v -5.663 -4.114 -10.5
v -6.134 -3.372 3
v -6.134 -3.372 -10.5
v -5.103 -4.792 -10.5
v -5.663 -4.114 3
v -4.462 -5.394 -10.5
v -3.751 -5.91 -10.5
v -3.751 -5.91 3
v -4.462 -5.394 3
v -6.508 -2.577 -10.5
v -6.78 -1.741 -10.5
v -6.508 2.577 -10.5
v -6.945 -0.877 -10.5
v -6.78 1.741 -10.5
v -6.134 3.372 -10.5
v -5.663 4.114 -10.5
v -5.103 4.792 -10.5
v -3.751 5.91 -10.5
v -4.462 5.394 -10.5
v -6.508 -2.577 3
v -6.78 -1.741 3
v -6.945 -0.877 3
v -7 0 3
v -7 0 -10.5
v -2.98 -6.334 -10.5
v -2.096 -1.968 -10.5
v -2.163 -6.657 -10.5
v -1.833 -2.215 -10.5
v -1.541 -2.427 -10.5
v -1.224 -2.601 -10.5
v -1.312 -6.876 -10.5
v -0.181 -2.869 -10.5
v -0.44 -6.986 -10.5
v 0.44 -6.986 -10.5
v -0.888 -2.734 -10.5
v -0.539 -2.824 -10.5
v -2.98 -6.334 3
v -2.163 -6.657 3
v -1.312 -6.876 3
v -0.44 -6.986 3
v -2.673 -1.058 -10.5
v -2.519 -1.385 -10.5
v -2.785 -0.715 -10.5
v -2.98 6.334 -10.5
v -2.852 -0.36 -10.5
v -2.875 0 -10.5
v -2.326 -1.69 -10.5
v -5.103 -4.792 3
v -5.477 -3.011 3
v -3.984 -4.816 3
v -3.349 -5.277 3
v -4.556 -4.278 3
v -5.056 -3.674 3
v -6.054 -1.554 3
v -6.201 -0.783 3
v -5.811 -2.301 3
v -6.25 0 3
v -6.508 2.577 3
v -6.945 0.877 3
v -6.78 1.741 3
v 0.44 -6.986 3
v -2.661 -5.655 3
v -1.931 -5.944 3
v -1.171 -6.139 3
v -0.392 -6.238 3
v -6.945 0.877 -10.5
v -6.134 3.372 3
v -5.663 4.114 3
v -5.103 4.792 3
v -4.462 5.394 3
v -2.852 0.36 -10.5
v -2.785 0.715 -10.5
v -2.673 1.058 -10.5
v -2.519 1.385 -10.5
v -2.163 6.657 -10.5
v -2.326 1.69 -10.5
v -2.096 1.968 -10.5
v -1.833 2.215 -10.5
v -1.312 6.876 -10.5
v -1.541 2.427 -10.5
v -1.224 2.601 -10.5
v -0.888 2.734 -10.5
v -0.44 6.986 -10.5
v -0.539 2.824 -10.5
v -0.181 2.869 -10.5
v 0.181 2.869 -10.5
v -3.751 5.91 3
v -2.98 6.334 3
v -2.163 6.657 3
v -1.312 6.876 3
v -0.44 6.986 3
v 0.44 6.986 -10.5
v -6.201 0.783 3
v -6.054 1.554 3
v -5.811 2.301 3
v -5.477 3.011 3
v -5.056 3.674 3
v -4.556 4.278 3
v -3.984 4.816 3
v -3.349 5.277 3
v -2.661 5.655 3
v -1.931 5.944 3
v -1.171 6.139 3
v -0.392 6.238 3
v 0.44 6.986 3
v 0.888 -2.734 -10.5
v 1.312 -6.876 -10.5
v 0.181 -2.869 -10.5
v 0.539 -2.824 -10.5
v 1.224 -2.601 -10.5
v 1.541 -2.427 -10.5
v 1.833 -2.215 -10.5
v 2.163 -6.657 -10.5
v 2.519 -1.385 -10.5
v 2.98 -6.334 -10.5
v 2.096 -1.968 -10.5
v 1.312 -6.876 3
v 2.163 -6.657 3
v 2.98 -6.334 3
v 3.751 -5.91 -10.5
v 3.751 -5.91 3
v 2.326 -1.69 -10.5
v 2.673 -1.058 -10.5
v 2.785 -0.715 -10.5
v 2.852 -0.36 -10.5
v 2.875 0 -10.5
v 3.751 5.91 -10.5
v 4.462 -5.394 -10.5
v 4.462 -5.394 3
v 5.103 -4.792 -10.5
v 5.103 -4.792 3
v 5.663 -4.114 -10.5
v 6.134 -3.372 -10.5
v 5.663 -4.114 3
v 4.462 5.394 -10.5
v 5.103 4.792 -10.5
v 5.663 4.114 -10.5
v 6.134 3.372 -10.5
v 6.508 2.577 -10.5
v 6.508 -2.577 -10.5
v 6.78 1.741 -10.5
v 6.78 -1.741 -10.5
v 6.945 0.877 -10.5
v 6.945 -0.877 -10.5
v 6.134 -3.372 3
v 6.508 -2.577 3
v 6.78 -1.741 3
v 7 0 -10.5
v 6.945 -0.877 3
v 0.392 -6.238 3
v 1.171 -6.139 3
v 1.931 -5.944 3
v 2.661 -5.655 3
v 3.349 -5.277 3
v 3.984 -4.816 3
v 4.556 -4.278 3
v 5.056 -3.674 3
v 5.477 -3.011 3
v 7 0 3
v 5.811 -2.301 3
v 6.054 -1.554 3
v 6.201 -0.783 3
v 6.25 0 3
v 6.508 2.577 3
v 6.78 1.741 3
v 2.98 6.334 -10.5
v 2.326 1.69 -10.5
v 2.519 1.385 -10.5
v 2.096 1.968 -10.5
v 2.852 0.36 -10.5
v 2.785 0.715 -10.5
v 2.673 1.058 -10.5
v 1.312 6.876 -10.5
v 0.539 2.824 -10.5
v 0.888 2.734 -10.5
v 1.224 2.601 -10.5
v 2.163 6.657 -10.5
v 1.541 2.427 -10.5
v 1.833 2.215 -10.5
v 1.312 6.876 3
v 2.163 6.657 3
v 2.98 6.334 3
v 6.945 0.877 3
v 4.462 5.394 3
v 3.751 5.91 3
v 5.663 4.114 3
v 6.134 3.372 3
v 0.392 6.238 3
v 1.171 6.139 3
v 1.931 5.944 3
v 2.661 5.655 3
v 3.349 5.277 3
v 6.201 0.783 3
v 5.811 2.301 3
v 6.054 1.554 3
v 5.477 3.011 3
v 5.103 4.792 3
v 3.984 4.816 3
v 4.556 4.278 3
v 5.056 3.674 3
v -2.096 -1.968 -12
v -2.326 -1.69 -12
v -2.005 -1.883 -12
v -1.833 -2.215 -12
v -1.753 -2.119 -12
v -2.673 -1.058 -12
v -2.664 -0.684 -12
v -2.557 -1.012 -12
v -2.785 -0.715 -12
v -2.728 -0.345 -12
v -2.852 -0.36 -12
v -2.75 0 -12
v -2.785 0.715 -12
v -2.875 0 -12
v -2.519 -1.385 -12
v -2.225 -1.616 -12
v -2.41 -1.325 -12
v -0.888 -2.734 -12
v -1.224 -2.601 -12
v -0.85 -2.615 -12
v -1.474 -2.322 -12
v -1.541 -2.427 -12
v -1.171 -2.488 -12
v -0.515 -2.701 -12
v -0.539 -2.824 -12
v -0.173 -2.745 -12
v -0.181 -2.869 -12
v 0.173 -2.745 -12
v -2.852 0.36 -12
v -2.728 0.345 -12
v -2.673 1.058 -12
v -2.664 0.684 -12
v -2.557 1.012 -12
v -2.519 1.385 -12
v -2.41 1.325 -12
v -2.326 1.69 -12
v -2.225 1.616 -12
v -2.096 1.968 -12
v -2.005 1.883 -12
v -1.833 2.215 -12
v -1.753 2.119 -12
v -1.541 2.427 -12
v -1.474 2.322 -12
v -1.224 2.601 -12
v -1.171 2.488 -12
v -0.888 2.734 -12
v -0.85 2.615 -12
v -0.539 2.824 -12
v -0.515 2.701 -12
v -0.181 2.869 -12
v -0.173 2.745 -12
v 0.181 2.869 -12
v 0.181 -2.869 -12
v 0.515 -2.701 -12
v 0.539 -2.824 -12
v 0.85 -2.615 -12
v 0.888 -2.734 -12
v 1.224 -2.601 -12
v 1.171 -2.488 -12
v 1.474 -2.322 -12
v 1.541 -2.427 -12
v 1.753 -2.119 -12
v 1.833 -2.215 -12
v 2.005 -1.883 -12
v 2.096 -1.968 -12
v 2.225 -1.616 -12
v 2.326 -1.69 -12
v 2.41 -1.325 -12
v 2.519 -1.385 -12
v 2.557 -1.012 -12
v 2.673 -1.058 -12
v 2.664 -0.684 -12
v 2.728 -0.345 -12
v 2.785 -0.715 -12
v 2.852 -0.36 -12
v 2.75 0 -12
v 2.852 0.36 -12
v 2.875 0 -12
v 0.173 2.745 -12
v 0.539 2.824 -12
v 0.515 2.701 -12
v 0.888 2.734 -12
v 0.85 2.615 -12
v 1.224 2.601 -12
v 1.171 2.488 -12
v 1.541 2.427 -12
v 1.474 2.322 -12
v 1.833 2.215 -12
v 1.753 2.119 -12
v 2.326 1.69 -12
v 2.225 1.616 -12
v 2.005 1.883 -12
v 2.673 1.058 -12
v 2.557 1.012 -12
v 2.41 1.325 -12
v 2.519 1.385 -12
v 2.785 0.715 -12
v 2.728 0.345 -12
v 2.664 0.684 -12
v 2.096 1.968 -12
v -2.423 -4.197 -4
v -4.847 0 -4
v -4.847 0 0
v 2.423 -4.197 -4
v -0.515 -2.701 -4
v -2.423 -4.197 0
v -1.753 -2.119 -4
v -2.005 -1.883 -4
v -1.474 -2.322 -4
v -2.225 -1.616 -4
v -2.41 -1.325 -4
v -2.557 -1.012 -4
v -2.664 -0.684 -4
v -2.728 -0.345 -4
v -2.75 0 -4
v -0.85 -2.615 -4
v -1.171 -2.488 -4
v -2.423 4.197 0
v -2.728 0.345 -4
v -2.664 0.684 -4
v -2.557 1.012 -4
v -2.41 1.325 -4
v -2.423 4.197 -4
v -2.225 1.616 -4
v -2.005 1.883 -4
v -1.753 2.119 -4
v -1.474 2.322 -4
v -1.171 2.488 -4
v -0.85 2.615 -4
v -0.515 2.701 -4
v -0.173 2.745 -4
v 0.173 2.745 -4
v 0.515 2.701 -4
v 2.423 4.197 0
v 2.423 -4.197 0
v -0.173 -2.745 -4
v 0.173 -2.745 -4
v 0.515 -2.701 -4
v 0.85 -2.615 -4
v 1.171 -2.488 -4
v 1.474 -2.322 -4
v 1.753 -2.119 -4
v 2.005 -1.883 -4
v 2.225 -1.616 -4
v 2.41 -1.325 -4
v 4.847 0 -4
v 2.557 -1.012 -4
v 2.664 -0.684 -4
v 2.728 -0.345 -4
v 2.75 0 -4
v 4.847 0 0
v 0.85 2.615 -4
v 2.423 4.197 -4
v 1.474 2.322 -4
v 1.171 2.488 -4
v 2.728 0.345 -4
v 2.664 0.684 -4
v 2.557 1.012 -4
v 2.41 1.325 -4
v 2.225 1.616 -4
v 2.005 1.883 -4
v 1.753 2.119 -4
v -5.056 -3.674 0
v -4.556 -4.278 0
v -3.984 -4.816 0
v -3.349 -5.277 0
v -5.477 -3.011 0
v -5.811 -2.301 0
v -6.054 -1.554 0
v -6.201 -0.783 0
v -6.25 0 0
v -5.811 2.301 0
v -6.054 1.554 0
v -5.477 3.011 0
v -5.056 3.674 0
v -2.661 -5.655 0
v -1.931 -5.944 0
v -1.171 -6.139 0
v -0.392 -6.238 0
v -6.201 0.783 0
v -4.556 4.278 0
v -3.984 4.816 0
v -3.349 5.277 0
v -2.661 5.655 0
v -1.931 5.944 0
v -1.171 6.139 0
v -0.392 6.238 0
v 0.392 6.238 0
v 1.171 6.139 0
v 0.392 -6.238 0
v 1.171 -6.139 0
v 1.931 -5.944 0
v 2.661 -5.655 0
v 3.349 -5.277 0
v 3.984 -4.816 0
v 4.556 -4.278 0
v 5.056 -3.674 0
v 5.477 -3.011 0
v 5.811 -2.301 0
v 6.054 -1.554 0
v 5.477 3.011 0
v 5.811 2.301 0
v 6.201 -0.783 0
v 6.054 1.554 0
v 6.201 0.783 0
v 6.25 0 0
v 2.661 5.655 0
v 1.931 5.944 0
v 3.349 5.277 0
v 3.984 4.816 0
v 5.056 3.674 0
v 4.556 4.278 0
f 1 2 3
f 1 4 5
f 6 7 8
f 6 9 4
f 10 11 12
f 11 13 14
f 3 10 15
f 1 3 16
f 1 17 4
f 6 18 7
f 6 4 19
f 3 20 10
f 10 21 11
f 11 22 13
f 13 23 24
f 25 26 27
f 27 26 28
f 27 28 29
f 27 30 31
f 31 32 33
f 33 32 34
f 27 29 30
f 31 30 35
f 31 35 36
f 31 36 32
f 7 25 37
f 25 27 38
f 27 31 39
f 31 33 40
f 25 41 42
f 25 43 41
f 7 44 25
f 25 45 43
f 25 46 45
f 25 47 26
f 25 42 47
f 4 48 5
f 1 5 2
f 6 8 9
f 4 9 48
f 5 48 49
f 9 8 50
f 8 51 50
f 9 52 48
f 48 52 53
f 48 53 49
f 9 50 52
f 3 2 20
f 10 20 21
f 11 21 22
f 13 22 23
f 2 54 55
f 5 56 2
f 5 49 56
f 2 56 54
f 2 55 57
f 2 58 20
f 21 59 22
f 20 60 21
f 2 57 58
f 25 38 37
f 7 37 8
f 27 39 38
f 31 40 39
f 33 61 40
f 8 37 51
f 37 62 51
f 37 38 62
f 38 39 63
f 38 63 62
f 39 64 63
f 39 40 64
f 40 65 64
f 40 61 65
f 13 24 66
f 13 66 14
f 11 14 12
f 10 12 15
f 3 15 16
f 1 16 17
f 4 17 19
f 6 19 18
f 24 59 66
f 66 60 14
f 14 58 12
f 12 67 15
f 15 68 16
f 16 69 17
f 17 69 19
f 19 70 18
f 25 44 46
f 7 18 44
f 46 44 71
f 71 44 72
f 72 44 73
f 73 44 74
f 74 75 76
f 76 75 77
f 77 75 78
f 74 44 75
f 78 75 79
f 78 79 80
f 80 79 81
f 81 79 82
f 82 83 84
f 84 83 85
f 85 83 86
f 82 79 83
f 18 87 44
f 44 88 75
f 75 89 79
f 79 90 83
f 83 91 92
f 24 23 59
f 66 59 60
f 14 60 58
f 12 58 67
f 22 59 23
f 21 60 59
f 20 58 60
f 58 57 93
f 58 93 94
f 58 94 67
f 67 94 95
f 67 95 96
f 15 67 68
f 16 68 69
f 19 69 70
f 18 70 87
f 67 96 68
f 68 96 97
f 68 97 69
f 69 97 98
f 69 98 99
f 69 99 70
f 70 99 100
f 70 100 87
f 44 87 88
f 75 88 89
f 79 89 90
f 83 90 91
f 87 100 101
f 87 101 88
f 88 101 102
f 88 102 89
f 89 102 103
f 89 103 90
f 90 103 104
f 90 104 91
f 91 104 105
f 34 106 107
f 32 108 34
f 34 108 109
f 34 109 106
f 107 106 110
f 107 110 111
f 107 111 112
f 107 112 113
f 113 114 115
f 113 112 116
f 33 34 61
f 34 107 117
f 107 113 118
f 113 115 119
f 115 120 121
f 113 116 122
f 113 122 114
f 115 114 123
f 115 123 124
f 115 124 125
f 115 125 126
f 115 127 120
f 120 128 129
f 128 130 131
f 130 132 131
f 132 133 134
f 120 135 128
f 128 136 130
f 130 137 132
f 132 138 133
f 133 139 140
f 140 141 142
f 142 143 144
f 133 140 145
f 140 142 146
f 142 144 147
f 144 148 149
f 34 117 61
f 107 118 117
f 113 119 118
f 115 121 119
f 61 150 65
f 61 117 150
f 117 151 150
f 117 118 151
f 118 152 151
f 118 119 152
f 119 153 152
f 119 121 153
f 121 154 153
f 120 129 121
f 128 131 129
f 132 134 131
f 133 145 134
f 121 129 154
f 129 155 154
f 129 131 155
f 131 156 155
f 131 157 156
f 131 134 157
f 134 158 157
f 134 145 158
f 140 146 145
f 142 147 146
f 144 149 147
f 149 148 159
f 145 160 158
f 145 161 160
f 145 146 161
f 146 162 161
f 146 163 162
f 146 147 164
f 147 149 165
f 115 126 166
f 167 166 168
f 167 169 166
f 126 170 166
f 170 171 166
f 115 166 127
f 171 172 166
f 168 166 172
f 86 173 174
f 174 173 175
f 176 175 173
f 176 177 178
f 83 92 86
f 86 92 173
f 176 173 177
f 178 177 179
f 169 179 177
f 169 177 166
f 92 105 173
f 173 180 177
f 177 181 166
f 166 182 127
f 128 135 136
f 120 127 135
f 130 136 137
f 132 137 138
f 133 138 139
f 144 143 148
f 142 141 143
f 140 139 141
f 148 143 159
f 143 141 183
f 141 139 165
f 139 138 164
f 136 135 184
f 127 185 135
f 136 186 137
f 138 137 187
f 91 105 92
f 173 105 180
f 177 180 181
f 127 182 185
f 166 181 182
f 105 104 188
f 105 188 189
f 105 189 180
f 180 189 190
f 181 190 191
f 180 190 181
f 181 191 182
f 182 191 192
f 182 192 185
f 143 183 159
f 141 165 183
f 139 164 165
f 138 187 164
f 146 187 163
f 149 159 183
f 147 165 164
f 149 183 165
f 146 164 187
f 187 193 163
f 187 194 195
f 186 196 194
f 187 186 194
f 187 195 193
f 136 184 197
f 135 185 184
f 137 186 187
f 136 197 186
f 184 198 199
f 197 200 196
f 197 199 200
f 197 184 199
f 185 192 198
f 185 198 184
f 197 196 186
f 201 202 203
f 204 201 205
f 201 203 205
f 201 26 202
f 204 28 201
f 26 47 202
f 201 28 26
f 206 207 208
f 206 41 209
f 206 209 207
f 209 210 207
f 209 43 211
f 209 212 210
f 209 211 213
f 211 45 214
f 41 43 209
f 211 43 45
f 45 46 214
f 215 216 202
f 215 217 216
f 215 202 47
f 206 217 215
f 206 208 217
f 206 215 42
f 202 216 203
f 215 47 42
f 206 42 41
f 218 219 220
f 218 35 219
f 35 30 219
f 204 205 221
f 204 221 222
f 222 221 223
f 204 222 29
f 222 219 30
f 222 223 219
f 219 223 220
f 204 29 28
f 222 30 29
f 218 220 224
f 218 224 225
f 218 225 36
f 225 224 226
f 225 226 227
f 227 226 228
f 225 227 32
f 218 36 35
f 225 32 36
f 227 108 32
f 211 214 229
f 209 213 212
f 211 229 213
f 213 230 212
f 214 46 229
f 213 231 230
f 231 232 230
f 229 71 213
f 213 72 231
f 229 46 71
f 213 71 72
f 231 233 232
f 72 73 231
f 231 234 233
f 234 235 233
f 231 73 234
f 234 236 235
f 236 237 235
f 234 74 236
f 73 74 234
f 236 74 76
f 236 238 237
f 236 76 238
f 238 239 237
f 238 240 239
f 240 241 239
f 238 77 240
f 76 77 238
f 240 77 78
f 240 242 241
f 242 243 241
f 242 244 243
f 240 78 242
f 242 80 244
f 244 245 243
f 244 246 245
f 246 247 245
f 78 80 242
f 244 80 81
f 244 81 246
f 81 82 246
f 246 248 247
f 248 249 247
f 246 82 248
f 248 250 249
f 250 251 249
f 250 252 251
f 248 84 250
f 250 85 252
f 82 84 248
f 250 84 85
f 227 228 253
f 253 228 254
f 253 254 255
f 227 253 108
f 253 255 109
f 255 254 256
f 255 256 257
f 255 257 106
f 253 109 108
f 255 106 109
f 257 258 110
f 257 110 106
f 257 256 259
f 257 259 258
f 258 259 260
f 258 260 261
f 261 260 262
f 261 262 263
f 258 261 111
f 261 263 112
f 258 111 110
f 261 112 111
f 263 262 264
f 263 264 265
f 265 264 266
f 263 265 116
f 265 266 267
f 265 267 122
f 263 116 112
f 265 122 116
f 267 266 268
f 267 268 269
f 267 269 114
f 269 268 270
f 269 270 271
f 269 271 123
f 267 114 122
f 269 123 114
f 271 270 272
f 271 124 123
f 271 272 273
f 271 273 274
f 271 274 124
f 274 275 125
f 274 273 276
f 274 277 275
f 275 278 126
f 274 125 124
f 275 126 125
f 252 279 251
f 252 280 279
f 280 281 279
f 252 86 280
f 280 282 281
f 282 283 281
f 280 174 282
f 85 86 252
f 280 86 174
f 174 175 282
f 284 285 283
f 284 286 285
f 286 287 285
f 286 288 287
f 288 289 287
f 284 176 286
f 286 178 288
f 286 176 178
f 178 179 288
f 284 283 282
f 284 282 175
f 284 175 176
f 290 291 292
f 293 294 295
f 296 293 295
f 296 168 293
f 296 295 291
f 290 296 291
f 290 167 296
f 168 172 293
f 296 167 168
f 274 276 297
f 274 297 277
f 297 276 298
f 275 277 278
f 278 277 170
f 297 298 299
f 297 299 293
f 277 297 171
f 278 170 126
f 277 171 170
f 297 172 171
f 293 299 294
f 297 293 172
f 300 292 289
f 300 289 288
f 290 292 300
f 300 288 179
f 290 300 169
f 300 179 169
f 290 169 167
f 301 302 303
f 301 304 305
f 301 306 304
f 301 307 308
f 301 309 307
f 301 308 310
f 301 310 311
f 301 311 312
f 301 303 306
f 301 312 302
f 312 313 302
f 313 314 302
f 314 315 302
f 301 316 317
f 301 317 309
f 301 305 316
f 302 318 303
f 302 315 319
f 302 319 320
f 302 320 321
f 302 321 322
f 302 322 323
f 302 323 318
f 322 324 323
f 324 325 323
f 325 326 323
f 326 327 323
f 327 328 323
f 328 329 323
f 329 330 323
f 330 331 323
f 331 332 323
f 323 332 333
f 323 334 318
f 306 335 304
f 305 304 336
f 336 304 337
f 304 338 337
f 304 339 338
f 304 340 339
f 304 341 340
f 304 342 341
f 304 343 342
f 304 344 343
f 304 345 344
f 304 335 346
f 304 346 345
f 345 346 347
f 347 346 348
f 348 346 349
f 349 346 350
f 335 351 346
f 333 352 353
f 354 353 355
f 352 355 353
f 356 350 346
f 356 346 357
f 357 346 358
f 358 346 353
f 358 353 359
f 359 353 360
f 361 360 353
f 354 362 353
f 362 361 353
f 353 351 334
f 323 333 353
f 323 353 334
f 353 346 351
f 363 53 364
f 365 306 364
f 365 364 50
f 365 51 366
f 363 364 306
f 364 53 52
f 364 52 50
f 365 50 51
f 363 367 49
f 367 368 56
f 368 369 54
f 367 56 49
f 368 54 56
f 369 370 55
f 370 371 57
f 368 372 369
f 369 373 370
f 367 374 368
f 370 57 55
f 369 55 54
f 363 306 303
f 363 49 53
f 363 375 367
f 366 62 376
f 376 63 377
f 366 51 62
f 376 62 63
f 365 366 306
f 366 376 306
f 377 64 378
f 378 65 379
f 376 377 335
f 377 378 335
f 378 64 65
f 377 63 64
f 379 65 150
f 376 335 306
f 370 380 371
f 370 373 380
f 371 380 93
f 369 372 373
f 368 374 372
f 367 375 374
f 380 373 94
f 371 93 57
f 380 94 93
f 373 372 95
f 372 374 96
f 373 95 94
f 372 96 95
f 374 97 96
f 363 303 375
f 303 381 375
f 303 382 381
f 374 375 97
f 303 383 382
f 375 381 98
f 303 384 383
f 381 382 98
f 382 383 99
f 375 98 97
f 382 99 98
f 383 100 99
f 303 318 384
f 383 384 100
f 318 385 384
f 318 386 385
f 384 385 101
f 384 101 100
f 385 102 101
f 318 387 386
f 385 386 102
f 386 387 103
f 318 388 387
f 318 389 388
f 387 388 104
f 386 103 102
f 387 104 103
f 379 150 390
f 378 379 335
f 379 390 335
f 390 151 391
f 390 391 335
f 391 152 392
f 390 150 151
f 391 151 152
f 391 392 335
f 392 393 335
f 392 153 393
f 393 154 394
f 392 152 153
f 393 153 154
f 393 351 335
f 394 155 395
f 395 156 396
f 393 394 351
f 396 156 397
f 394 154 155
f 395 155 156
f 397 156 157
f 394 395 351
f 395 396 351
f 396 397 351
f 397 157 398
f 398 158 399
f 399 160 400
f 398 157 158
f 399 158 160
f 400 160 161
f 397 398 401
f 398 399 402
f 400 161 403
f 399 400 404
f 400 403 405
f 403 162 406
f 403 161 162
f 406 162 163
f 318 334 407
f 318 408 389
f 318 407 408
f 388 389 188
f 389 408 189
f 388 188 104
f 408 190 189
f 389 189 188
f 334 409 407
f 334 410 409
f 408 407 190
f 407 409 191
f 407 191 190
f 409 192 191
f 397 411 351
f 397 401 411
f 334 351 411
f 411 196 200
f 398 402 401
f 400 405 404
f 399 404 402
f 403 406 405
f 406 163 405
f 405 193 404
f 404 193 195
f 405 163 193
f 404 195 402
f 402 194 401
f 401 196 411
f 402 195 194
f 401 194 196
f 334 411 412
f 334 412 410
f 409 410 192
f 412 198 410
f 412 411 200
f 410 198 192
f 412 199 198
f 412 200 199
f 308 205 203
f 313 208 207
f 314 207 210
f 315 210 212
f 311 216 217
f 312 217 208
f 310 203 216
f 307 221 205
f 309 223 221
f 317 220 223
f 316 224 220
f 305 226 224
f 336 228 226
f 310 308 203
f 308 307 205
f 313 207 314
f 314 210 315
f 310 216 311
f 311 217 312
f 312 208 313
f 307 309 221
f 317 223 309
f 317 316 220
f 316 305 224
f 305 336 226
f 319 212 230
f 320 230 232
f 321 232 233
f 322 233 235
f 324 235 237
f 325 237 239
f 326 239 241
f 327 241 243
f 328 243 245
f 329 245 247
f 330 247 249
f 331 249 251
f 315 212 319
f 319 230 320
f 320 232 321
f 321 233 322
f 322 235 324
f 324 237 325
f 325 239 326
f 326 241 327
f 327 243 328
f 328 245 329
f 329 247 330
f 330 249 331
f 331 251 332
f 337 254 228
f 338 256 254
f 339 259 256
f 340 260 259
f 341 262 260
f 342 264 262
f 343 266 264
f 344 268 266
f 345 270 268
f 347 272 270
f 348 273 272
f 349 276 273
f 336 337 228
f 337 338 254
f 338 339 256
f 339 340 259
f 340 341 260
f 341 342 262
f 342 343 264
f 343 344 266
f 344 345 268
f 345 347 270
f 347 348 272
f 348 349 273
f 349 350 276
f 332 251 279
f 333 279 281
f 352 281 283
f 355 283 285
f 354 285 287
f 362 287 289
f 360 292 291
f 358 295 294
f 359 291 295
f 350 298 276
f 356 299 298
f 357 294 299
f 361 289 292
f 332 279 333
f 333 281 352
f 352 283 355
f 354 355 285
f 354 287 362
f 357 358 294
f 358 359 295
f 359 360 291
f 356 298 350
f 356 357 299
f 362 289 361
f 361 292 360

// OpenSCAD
$fn = 50;


difference() {
	union() {
		translate(v = [0, 0, -10.5000000000]) {
			cylinder(h = 13.5000000000, r = 7.0000000000);
		}
		#translate(v = [0, 0, -12.0000000000]) {
			cylinder(h = 12, r = 2.8750000000);
		}
	}
	union() {
		translate(v = [0, 0, 0]) {
			rotate(a = [0, 0, 0]) {
				difference() {
					union() {
						translate(v = [0, 0, -4]) {
							linear_extrude(height = 4) {
								polygon(points = [[4.8468000000, 0.0000000000], [2.4234000000, 4.1974519271], [-2.4234000000, 4.1974519271], [-4.8468000000, 0.0000000000], [-2.4234000000, -4.1974519271], [2.4234000000, -4.1974519271]]);
							}
						}
					}
					union();
				}
			}
		}
		#cylinder(h = 3, r = 6.2500000000);
		#translate(v = [0, 0, -100.0000000000]) {
			cylinder(h = 200, r = 2.7500000000);
		}
	}
}
